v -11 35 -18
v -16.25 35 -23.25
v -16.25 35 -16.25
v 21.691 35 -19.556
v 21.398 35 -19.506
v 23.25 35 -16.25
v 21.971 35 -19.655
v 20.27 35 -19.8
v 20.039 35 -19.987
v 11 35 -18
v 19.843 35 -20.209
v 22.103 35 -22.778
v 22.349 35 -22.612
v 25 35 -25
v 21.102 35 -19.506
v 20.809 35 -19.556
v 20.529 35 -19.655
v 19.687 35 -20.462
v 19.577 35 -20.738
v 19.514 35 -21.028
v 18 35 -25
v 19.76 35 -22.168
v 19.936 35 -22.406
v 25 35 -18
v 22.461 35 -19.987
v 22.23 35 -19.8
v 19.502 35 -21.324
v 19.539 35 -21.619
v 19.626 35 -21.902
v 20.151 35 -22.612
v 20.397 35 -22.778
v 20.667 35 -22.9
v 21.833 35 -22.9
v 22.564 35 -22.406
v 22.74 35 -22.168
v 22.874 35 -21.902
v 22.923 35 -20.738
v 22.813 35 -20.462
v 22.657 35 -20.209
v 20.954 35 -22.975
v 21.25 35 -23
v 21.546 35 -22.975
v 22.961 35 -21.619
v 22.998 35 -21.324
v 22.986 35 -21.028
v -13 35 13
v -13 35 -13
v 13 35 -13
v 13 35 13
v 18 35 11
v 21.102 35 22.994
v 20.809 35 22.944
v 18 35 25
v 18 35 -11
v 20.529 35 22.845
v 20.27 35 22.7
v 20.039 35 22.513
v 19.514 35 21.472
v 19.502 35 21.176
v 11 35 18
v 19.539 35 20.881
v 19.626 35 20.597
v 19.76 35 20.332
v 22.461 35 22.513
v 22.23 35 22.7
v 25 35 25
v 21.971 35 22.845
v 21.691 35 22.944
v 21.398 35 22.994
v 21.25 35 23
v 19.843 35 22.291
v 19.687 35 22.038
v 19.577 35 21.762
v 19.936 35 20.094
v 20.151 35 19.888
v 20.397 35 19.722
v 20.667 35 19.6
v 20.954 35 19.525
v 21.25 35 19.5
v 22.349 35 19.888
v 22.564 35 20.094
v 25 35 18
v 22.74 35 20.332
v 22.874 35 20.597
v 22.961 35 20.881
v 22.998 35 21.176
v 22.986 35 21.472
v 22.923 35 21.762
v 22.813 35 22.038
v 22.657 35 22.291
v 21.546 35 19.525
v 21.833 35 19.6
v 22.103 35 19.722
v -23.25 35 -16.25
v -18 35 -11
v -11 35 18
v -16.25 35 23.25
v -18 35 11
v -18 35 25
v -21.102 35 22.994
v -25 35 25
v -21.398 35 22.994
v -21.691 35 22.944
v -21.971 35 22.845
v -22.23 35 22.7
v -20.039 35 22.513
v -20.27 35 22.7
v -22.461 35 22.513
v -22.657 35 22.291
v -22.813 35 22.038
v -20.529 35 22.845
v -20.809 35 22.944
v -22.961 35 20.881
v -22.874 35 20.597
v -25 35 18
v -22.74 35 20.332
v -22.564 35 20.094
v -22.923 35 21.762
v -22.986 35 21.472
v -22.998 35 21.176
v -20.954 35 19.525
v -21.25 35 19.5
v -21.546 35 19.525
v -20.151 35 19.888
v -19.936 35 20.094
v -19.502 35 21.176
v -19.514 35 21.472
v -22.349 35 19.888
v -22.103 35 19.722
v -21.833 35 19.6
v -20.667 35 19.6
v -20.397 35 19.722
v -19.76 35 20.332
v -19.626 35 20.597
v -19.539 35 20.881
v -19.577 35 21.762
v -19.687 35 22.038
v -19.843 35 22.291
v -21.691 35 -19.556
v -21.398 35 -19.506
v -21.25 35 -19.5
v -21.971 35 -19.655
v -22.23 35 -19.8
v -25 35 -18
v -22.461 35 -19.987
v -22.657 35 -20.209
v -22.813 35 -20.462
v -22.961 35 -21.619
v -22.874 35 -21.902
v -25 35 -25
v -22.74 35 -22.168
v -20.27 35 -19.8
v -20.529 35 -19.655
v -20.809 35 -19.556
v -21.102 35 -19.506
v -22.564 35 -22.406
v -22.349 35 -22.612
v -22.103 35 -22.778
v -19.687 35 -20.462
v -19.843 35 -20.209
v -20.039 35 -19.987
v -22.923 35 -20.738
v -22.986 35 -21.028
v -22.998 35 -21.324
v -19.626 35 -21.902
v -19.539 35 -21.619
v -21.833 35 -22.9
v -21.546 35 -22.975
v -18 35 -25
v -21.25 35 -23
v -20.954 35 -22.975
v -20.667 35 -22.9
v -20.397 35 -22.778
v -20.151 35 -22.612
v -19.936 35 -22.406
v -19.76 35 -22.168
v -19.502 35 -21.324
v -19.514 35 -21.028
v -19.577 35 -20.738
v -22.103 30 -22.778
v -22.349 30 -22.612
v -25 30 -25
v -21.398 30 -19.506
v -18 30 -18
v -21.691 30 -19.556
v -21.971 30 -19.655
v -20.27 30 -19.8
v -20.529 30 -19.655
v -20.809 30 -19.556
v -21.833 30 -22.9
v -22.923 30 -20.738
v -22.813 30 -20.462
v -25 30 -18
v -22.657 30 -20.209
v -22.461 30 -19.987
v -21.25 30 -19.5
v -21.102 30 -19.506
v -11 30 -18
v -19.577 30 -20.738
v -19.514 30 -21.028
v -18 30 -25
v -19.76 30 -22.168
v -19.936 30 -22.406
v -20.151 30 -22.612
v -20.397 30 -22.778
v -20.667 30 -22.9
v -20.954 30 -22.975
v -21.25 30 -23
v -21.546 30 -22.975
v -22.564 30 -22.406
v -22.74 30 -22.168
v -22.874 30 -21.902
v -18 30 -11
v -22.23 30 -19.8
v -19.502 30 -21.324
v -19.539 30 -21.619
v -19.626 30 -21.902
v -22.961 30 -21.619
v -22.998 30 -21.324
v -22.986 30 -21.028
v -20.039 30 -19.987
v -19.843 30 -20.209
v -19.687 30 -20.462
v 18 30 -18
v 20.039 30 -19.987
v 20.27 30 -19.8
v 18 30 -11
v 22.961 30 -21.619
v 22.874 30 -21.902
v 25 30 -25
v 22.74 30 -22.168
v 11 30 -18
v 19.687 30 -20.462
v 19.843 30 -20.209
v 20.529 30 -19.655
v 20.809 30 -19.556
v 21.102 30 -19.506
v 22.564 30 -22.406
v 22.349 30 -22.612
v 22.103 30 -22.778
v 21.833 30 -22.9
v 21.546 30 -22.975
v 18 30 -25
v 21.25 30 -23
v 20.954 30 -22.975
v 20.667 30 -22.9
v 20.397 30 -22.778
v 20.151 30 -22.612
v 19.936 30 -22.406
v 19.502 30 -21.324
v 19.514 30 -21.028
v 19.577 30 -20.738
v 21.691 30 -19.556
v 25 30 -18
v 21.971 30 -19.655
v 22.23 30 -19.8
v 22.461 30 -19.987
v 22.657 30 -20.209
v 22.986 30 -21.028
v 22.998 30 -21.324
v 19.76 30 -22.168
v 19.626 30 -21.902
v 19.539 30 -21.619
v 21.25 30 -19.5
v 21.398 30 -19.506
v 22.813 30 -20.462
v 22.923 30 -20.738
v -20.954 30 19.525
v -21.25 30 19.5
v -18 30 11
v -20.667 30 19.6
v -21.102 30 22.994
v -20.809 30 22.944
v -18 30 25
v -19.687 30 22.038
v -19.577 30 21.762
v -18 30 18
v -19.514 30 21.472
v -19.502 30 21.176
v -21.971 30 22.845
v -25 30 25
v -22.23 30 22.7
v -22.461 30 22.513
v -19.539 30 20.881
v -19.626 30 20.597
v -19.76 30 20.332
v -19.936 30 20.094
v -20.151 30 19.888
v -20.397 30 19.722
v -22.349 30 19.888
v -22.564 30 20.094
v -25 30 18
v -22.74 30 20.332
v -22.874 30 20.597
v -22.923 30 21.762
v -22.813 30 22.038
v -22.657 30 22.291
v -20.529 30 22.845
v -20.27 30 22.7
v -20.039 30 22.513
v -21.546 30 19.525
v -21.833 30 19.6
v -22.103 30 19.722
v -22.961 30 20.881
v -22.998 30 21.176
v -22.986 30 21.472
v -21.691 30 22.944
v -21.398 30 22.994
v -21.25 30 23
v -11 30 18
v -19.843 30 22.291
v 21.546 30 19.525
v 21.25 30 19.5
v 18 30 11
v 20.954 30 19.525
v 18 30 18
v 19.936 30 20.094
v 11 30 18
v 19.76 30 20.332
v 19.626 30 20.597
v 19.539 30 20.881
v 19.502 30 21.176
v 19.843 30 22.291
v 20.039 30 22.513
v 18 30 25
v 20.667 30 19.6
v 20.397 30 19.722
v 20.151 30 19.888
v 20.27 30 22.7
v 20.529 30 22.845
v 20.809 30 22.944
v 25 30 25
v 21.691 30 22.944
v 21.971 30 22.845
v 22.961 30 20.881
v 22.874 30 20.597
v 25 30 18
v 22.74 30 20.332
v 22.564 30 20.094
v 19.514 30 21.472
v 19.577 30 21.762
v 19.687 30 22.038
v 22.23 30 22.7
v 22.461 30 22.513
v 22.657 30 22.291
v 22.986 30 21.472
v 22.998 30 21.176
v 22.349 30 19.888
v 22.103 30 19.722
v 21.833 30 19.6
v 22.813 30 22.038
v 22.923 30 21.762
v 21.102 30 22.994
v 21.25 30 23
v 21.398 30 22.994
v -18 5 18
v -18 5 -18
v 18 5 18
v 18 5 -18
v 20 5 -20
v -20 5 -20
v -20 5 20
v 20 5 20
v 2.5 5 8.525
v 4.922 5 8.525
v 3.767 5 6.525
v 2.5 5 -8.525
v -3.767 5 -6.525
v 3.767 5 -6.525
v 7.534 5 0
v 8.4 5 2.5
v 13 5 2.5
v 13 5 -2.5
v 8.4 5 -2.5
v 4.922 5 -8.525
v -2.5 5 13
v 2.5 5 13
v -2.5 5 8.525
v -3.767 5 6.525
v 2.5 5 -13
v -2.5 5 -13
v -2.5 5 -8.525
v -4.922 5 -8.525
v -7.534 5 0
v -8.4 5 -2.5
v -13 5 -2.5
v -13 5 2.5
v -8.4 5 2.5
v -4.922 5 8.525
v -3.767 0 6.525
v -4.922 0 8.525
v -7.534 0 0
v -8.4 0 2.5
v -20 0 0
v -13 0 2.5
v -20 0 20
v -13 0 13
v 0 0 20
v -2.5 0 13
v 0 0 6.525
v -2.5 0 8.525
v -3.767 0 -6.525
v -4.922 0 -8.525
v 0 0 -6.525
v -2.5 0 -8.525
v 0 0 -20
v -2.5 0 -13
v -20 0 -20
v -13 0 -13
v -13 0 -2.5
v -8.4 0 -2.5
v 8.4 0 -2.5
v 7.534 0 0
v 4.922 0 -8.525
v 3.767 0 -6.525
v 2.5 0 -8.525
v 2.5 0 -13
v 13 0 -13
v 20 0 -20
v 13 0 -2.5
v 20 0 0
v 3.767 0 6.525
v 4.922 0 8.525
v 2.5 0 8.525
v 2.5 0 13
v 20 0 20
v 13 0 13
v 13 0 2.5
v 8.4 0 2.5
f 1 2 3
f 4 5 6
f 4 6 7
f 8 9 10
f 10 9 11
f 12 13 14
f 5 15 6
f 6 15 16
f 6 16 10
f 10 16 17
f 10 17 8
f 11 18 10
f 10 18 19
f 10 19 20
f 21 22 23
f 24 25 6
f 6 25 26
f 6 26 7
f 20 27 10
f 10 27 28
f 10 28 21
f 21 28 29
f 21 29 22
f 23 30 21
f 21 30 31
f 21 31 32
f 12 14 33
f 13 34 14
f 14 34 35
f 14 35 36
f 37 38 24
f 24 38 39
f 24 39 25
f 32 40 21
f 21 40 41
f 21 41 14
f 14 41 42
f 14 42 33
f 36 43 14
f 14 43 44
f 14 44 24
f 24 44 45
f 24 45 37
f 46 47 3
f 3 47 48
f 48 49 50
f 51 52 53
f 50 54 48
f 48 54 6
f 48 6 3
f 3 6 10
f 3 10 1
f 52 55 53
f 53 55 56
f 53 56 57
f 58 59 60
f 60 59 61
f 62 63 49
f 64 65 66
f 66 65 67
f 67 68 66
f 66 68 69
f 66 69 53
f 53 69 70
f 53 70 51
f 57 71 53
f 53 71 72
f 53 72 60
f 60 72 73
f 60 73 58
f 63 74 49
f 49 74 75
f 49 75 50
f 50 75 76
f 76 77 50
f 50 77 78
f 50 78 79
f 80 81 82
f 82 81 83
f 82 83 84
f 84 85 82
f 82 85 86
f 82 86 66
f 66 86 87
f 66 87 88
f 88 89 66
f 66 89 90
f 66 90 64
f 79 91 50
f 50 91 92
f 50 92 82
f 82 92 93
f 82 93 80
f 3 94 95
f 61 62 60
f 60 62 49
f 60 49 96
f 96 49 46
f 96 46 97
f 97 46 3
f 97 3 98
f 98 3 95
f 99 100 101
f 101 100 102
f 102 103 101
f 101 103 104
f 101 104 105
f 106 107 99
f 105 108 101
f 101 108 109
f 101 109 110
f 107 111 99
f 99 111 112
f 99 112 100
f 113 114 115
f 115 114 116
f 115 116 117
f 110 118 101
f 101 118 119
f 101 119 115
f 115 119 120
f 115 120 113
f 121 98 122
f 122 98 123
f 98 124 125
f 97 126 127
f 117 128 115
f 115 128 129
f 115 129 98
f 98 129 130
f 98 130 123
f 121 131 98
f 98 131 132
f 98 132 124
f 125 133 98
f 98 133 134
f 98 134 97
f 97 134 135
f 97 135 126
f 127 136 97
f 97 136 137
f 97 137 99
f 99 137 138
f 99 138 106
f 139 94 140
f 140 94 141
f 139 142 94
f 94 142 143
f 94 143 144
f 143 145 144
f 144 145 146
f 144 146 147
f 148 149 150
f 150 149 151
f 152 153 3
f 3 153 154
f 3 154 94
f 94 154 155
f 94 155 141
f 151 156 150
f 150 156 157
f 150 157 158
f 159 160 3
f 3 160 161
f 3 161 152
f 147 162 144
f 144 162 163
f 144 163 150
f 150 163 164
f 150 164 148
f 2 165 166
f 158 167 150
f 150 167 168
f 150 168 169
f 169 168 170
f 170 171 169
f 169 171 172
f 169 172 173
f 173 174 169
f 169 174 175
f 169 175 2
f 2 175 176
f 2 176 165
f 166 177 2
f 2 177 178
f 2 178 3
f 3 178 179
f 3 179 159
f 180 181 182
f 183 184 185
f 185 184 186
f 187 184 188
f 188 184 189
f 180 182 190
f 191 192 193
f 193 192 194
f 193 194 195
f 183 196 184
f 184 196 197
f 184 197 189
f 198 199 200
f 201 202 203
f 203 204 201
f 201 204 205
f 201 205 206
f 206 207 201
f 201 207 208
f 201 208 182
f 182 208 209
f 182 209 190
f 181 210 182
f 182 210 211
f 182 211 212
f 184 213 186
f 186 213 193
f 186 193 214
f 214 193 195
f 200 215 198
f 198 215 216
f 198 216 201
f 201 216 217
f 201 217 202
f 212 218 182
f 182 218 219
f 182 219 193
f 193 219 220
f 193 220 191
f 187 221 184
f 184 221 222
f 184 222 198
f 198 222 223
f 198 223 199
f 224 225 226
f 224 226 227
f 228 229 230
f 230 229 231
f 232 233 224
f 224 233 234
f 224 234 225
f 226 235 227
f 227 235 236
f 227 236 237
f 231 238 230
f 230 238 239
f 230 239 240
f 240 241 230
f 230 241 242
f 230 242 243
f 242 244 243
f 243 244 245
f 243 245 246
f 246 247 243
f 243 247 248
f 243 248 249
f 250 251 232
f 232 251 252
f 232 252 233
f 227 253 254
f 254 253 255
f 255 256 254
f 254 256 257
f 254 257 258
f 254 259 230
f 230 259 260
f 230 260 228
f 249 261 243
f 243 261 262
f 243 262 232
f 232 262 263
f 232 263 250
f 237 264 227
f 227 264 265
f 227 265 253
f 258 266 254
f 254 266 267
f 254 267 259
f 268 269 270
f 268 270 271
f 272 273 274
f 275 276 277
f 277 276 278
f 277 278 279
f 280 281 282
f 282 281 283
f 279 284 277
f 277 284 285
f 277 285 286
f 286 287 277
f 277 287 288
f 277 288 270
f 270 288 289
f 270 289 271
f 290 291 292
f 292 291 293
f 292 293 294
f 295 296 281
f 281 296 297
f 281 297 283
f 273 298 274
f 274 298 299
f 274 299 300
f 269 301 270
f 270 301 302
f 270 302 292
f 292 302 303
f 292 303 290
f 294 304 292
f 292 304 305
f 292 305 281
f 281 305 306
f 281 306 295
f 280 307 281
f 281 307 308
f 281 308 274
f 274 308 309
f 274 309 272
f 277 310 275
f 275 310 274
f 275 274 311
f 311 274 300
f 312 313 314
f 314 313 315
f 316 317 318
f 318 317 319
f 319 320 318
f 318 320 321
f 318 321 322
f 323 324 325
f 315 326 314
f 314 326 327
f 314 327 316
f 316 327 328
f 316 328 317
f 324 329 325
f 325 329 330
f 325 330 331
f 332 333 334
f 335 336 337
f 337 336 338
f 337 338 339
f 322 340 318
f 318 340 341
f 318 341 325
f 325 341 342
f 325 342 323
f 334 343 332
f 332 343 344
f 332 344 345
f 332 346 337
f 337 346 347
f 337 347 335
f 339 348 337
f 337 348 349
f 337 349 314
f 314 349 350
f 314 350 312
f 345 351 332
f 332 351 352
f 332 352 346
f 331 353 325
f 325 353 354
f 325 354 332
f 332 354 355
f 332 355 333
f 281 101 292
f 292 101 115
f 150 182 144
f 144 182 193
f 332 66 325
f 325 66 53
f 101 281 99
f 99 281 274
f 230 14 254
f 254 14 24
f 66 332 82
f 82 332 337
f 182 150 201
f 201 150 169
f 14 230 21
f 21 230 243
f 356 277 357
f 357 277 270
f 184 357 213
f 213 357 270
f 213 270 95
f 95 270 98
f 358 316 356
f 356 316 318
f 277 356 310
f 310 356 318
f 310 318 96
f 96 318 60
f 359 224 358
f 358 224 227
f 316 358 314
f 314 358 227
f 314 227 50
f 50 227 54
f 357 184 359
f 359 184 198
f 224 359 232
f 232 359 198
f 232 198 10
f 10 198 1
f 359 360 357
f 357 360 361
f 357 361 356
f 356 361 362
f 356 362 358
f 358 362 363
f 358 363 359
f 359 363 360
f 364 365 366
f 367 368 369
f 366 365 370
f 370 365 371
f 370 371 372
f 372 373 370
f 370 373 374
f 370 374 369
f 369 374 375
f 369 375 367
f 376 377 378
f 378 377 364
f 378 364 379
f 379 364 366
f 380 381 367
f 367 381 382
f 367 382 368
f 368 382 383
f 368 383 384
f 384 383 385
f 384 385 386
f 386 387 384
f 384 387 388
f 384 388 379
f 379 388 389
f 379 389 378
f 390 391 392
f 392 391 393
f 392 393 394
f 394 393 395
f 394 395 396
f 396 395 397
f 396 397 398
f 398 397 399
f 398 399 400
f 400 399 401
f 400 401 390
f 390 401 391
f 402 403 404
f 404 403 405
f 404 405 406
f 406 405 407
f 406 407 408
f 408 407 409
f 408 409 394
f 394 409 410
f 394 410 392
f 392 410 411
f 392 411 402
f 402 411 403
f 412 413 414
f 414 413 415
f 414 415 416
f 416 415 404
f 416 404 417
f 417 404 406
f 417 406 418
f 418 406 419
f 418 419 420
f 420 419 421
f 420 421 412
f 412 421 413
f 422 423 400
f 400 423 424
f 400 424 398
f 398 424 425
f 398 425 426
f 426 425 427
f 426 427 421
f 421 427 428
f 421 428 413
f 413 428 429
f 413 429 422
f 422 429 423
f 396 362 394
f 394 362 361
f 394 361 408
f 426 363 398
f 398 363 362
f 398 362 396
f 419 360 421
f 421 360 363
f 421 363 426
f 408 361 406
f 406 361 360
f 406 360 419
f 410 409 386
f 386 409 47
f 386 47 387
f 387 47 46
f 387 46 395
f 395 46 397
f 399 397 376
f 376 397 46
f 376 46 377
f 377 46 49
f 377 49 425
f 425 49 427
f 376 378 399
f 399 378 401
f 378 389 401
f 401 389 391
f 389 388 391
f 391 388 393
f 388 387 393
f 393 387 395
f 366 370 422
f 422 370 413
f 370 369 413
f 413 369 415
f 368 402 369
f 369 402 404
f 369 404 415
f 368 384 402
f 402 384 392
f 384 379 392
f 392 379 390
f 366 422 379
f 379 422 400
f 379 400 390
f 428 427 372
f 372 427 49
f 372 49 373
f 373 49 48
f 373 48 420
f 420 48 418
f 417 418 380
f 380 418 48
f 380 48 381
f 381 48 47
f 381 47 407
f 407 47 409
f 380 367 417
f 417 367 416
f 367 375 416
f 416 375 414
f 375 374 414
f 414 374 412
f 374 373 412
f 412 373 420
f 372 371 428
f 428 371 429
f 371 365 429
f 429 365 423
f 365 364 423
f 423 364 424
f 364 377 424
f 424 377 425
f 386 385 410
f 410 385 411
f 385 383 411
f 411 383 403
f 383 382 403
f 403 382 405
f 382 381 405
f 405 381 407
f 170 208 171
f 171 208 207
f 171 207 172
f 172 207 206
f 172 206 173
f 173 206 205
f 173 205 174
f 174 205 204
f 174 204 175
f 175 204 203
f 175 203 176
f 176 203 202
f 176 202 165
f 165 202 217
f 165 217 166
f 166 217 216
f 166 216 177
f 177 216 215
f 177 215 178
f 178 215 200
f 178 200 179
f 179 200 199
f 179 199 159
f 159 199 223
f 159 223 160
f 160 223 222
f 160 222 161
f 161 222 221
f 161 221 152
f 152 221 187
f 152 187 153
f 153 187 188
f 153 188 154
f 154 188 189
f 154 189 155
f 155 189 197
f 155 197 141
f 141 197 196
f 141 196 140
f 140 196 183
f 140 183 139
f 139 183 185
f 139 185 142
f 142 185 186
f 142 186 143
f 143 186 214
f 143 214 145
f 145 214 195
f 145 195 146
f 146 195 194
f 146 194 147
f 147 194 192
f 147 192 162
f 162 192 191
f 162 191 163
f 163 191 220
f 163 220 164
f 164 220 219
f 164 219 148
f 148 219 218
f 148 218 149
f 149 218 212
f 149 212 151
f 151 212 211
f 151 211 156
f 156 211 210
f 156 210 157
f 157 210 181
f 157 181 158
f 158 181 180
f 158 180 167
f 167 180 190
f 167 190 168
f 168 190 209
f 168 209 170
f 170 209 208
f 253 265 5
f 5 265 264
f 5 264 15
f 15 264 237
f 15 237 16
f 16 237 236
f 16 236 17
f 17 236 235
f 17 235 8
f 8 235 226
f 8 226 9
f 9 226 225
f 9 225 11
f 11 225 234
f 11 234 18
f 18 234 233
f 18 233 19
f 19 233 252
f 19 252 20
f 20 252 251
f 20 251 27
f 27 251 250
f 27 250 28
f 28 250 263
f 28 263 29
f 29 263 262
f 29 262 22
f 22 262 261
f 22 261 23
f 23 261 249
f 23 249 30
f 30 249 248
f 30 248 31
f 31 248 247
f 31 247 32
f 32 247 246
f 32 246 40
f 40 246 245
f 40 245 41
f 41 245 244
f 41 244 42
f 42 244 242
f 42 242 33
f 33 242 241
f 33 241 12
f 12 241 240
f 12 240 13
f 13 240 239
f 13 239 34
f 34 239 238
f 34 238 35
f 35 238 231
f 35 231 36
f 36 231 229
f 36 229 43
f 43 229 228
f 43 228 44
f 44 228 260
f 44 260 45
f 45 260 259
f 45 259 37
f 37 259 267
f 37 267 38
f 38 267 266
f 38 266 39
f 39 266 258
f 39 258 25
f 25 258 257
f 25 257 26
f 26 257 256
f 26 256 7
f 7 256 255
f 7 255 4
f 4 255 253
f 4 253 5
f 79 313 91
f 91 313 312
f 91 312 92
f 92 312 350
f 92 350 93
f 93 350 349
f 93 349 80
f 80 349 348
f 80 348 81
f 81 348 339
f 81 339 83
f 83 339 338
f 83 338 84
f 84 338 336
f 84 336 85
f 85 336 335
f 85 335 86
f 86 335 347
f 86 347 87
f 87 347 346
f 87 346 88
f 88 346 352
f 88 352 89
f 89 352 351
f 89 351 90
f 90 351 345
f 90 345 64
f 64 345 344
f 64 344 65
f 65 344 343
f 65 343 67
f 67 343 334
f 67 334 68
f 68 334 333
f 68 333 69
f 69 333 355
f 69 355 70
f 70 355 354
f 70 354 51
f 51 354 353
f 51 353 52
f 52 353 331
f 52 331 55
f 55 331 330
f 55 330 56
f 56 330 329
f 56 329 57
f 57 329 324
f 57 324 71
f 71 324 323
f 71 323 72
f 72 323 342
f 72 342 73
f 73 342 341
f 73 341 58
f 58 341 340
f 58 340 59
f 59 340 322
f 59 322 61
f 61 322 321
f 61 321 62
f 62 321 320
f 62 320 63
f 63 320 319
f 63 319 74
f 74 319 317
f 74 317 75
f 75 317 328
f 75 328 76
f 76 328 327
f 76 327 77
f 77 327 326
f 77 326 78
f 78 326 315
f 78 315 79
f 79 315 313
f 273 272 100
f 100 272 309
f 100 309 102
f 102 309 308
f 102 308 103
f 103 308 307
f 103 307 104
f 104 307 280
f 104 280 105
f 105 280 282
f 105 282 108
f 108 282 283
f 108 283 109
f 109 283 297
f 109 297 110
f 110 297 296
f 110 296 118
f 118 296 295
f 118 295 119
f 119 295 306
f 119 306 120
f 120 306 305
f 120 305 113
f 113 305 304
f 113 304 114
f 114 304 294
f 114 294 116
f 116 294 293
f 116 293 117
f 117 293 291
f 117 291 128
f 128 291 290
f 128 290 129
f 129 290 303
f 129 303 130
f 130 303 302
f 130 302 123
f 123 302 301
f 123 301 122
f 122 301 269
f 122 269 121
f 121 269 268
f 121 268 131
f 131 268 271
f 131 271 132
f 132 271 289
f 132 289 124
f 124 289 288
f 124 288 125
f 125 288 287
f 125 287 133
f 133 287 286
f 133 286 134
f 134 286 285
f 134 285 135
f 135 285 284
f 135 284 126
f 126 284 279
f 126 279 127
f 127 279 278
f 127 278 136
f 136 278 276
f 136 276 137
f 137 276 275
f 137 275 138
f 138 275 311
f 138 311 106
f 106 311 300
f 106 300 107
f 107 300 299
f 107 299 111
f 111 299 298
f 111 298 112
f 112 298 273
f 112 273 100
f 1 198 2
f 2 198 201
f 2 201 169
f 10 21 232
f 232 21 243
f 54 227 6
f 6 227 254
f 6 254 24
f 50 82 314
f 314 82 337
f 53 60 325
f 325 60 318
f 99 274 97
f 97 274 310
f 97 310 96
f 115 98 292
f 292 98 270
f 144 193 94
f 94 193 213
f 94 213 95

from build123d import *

# Parameters (mm, degrees)
SKETCH4_W           = 40
SKETCH4_H           = 40
BOSS_EXTRUDE3_DEPTH = 5
SKETCH1_W           = 36
SKETCH1_H           = 36
SKETCH1_W_2         = 26
SKETCH1_H_2         = 26
BOSS_EXTRUDE4_DEPTH = 35
SKETCH9_W           = 50
SKETCH9_H           = 50
SKETCH9_W_2         = 26
SKETCH9_H_2         = 26
BOSS_EXTRUDE6_DEPTH = 5
SKETCH10_R          = 1.75
CUT_EXTRUDE2_DEPTH  = 10
CUT_EXTRUDE3_DEPTH  = 10


with BuildPart() as part:
    # Sketch4 → Boss-Extrude3 (new body)
    with BuildSketch(Plane(origin=(0, 0, 0), x_dir=(1, 0, 0), z_dir=(0, 1, 0))):
        Rectangle(SKETCH4_W, SKETCH4_H)
        Polygon((-2.5, -8.525), (-2.5, -13), (-13, -13), (-13, -2.5), (-8.400446417, -2.5), (-4.921911045, -8.525), align=None, mode=Mode.SUBTRACT)
        Polygon((7.534421013, 0), (3.767210506, 6.525), (-3.767210506, 6.525), (-7.534421013, 0), (-3.767210506, -6.525), (3.767210506, -6.525), align=None, mode=Mode.SUBTRACT)
        Polygon((13, 13), (2.5, 13), (2.5, 8.525), (4.921911045, 8.525), (8.400446417, 2.5), (13, 2.5), align=None, mode=Mode.SUBTRACT)
        Polygon((13, -13), (2.5, -13), (2.5, -8.525), (4.921911045, -8.525), (8.400446417, -2.5), (13, -2.5), align=None, mode=Mode.SUBTRACT)
        Polygon((-13, 13), (-13, 2.5), (-8.400446417, 2.5), (-4.921911045, 8.525), (-2.5, 8.525), (-2.5, 13), align=None, mode=Mode.SUBTRACT)
    extrude(amount=BOSS_EXTRUDE3_DEPTH)

    # Sketch1 → Boss-Extrude4 (add)
    with BuildSketch(Plane(origin=(0, 0, 0), x_dir=(1, 0, 0), z_dir=(0, 1, 0))):
        Rectangle(SKETCH1_W, SKETCH1_H)
        Rectangle(SKETCH1_W_2, SKETCH1_H_2, mode=Mode.SUBTRACT)
    extrude(amount=BOSS_EXTRUDE4_DEPTH)

    # Sketch9 → Boss-Extrude6 (add)
    with BuildSketch(Plane(origin=(0, 30, 0), x_dir=(1, 0, 0), z_dir=(0, 1, 0))):
        Rectangle(SKETCH9_W, SKETCH9_H)
        Rectangle(SKETCH9_W_2, SKETCH9_H_2, mode=Mode.SUBTRACT)
    extrude(amount=BOSS_EXTRUDE6_DEPTH)

    # Sketch10 → Cut-Extrude2 (cut)
    with BuildSketch(Plane(origin=(0, 25, 0), x_dir=(1, 0, 0), z_dir=(0, 1, 0))):
        with Locations((-21.25, 21.25)):
            Circle(SKETCH10_R)
        with Locations((21.25, 21.25)):
            Circle(SKETCH10_R)
        with Locations((21.25, -21.25)):
            Circle(SKETCH10_R)
        with Locations((-21.25, -21.25)):
            Circle(SKETCH10_R)
    extrude(amount=CUT_EXTRUDE2_DEPTH, mode=Mode.SUBTRACT)

    # Sketch11 → Cut-Extrude3 (cut)
    with BuildSketch(Plane(origin=(0, 25, 0), x_dir=(1, 0, 0), z_dir=(0, 1, 0))):
        Polygon((11, 18), (-11, 18), (-18, 25), (18, 25), align=None)
        Polygon((18, 11), (18, -11), (25, -18), (25, 18), align=None)
        Polygon((11, -18), (-11, -18), (-18, -25), (18, -25), align=None)
        Polygon((-18, 11), (-18, -11), (-25, -18), (-25, 18), align=None)
    extrude(amount=CUT_EXTRUDE3_DEPTH, mode=Mode.SUBTRACT)


solid = part.part
